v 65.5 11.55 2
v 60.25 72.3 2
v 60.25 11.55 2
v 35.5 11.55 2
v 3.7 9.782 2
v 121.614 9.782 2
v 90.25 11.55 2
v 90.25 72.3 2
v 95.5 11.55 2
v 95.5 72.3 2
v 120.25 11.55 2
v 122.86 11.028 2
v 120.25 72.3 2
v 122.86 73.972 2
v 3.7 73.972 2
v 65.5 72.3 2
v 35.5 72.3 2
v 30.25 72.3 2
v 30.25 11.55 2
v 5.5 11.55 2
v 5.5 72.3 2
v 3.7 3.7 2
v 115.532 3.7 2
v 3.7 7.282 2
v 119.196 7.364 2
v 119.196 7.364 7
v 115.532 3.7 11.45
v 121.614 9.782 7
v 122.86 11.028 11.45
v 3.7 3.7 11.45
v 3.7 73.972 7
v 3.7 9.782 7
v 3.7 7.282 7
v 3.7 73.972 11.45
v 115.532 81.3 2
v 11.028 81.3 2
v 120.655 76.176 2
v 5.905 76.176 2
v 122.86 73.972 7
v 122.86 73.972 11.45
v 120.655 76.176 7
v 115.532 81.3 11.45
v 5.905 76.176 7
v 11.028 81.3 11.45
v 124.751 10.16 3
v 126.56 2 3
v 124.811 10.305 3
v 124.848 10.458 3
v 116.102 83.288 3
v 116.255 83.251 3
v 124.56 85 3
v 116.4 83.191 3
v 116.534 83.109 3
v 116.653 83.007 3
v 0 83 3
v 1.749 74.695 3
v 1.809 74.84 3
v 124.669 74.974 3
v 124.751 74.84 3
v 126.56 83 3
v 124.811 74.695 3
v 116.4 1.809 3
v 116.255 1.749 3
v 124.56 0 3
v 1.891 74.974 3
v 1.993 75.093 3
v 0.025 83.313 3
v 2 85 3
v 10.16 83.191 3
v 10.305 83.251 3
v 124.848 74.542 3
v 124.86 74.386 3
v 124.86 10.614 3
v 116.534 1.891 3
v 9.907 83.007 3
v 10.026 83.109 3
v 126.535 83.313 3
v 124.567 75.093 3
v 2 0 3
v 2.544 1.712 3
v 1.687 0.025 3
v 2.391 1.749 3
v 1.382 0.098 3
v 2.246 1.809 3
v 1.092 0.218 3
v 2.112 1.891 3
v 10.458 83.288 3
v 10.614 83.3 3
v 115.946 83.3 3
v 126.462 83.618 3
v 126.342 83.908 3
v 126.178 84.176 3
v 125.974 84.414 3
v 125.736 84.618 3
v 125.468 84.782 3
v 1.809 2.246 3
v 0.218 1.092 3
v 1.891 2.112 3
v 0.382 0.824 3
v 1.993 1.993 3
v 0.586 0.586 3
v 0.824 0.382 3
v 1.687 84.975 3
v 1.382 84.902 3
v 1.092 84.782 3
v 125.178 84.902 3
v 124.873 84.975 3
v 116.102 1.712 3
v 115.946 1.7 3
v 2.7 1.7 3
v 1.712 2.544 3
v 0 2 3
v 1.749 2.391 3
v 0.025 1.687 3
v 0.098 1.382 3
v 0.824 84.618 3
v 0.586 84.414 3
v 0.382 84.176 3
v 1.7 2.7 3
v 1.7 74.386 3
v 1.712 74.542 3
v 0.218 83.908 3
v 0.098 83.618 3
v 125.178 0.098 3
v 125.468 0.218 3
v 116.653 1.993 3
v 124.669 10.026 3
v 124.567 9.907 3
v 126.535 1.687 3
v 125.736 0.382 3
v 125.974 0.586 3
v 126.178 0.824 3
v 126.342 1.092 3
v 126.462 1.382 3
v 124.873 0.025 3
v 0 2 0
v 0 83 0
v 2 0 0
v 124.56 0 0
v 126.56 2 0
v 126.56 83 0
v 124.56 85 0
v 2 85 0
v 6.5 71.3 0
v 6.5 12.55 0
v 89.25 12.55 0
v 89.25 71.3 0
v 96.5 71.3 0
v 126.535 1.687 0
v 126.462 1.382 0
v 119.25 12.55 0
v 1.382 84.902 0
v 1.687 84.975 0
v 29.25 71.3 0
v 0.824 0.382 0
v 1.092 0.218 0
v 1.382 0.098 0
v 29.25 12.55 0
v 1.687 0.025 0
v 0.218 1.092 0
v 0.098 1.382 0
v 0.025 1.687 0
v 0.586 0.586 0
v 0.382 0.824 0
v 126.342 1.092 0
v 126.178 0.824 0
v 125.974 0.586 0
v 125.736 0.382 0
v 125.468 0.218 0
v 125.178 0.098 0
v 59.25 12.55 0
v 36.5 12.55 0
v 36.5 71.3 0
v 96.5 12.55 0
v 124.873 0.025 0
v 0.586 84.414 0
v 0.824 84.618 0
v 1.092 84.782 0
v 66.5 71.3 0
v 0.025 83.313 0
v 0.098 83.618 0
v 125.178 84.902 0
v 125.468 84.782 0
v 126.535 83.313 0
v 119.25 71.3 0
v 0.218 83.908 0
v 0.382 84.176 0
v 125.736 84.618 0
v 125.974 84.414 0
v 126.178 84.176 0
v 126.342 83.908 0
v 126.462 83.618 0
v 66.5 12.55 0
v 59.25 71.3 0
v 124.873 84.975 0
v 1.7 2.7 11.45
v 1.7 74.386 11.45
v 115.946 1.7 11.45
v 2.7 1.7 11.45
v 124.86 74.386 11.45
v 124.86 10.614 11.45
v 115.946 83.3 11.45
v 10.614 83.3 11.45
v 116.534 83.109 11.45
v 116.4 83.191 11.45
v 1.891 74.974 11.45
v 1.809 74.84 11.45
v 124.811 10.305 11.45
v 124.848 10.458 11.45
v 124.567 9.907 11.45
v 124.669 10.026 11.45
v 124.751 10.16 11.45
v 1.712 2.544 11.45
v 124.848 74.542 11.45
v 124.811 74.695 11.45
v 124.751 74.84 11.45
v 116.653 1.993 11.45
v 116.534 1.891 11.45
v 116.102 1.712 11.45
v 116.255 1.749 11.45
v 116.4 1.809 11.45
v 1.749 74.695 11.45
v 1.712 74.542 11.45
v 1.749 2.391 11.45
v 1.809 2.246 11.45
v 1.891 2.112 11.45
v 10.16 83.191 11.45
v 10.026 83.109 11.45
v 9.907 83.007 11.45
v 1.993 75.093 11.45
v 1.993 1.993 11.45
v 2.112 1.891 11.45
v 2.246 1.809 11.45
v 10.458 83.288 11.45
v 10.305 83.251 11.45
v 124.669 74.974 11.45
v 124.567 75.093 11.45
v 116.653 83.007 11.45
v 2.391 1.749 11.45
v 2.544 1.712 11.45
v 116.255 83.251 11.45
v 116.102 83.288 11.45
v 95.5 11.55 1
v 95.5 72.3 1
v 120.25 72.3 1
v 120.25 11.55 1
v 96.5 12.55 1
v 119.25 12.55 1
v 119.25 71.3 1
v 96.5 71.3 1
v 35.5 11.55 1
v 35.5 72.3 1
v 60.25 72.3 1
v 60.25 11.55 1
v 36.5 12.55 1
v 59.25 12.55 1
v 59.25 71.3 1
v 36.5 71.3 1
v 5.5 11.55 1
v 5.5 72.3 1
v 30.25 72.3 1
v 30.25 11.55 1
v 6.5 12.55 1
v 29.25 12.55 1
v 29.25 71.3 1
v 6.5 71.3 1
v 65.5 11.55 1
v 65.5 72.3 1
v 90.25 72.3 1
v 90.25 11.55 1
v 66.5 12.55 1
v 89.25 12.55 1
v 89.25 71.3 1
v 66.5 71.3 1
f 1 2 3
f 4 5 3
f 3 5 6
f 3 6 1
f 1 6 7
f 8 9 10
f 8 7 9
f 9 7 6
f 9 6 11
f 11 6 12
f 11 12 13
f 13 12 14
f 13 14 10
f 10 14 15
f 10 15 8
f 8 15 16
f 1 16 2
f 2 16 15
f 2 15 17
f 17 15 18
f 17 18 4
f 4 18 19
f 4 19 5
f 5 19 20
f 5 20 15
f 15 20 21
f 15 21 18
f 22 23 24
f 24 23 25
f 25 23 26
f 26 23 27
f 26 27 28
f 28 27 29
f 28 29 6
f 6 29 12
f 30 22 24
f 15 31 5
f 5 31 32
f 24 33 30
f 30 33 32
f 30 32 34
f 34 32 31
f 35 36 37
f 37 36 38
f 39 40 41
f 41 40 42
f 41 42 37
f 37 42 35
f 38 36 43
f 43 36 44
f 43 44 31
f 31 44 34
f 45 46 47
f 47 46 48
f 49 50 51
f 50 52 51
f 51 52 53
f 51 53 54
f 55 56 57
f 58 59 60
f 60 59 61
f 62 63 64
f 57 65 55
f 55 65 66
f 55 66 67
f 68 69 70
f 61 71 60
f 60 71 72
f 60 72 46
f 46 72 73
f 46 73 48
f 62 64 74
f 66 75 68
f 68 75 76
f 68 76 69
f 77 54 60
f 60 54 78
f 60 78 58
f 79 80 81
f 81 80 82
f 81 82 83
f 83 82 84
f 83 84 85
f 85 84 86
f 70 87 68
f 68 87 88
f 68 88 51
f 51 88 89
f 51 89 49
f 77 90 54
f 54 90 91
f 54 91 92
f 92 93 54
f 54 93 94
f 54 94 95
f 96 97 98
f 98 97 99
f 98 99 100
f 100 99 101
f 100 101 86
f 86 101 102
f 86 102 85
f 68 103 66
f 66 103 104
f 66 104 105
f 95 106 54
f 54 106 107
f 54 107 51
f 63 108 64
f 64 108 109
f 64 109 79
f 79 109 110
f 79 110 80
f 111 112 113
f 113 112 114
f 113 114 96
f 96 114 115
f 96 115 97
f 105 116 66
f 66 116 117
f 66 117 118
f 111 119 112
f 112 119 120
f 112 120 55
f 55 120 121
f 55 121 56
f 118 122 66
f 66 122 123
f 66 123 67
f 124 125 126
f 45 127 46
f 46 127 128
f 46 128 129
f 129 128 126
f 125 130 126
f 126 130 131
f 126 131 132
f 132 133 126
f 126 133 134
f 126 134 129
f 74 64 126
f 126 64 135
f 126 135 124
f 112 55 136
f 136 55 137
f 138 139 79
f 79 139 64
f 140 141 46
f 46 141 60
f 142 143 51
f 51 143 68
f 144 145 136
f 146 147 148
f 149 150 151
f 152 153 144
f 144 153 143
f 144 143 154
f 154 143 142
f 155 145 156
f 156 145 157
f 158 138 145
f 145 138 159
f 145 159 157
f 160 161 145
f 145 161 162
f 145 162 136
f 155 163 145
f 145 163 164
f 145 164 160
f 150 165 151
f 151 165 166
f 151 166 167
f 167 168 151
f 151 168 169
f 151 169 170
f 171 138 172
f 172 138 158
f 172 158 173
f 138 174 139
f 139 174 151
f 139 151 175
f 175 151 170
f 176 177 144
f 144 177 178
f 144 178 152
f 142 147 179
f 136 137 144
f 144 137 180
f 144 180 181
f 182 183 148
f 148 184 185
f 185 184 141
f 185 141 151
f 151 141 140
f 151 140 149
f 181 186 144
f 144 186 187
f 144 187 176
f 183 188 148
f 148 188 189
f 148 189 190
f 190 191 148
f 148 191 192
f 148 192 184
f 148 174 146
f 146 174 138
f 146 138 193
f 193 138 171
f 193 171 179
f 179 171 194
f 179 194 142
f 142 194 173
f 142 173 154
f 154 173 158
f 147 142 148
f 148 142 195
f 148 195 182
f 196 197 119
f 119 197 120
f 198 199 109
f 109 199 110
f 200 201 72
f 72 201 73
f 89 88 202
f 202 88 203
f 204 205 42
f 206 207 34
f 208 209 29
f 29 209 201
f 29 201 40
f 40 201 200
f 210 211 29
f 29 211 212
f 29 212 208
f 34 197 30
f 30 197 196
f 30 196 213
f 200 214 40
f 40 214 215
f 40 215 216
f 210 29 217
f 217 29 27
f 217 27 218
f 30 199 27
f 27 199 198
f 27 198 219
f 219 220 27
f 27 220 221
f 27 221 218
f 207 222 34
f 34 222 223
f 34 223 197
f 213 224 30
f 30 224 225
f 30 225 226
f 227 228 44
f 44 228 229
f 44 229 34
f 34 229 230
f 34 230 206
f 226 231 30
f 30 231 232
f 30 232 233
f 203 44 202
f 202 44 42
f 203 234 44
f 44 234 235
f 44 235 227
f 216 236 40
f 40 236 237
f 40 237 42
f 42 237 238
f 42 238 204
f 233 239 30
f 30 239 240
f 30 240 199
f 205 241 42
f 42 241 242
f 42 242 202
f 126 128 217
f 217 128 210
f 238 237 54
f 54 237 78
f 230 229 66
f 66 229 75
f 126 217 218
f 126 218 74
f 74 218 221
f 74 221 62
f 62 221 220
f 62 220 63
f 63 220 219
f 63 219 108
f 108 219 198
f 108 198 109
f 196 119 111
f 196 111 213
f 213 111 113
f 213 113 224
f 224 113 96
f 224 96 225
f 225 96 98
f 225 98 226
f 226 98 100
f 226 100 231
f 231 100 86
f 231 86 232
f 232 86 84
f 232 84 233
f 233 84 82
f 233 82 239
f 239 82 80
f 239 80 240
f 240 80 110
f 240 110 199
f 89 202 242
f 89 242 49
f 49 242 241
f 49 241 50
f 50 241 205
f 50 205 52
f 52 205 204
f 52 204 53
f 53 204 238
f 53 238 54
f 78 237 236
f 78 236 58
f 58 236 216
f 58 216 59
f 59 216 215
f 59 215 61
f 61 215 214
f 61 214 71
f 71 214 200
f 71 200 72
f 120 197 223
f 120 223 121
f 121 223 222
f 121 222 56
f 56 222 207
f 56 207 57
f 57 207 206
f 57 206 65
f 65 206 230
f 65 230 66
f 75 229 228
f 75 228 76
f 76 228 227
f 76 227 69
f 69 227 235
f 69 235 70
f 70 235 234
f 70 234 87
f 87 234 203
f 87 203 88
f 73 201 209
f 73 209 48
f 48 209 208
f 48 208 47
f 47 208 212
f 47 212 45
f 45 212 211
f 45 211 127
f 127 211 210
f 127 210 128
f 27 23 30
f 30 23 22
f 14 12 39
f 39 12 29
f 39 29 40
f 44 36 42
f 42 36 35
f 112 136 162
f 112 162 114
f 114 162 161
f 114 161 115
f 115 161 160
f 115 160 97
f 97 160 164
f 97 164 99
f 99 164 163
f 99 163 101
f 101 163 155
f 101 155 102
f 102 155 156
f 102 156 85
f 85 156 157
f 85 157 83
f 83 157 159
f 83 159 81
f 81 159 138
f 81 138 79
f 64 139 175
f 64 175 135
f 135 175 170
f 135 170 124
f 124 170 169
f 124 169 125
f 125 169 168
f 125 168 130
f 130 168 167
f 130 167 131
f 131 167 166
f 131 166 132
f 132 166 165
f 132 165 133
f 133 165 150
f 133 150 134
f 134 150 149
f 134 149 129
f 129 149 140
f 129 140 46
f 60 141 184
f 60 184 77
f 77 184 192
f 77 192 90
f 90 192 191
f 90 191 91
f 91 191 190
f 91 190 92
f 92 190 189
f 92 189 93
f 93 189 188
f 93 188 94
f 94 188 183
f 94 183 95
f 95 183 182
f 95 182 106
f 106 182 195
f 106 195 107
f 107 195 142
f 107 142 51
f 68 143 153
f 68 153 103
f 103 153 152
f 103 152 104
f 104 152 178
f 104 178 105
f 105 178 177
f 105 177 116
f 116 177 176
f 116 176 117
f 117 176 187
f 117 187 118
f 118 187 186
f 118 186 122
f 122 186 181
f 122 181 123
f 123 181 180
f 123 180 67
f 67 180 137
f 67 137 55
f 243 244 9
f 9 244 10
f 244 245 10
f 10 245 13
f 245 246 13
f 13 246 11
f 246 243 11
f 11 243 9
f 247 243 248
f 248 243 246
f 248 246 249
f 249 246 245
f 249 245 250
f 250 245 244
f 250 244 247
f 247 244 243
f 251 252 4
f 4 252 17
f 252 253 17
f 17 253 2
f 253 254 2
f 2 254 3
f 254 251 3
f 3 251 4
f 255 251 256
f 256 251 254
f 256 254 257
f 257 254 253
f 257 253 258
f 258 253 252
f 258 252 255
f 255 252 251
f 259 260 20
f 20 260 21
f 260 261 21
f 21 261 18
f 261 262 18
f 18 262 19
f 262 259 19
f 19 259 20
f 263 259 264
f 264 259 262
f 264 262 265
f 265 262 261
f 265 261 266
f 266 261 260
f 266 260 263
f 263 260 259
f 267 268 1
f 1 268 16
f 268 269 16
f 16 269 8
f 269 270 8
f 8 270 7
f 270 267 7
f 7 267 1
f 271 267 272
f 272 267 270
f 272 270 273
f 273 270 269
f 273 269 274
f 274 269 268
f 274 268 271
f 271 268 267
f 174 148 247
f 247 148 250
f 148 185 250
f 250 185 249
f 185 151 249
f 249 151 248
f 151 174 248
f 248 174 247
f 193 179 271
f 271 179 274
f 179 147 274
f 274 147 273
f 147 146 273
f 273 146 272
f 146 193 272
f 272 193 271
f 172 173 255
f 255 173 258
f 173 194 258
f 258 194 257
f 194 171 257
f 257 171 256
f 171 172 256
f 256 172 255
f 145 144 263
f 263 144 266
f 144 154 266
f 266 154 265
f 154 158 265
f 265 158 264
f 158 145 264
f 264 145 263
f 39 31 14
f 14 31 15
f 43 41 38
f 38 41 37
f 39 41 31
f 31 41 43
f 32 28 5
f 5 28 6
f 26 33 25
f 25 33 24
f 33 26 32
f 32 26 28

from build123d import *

# Parameters (mm, degrees)
SKETCH1_W           = 126.56
SKETCH1_H           = 85
BOSS_EXTRUDE1_DEPTH = 3
SKETCH2_W           = 123.16
SKETCH2_H           = 81.6
BOSS_EXTRUDE2_DEPTH = 8.45
CUT_EXTRUDE1_DEPTH  = 8.45
FILLET1_R           = 1
SHELL1_T            = -2
FILLET2_R           = 2
SKETCH4_W           = 24.75
SKETCH4_H           = 60.75
CUT_EXTRUDE2_DEPTH  = 1
SKETCH5_W           = 22.75
SKETCH5_H           = 58.75
CUT_EXTRUDE3_DEPTH  = 1
BOSS_EXTRUDE4_DEPTH = 5


with BuildPart() as part:
    # Sketch1 → Boss-Extrude1 (new body)
    with BuildSketch(Plane.XY):
        with Locations((63.28, 42.5)):
            Rectangle(SKETCH1_W, SKETCH1_H)
    extrude(amount=BOSS_EXTRUDE1_DEPTH)

    # Sketch2 → Boss-Extrude2 (add)
    with BuildSketch(Plane.XY.offset(3)):
        with Locations((63.28, 42.5)):
            Rectangle(SKETCH2_W, SKETCH2_H)
    extrude(amount=BOSS_EXTRUDE2_DEPTH)

    # Sketch3 → Cut-Extrude1 (cut)
    with BuildSketch(Plane.XY.offset(11.45)):
        Polygon((1.7, 83.3), (1.7, 74.8), (10.2, 83.3), align=None)
        Polygon((124.86, 83.3), (116.36, 83.3), (124.86, 74.8), align=None)
        Polygon((124.86, 1.7), (124.86, 10.2), (116.36, 1.7), align=None)
    extrude(amount=-CUT_EXTRUDE1_DEPTH, mode=Mode.SUBTRACT)

    # Fillet1
    fillet1_edges = [part.edges().sort_by_distance(p)[0] for p in [
        (1.7, 1.7, 7.225),
        (10.2, 83.3, 7.225),
        (1.7, 74.8, 7.225),
        (124.86, 74.8, 7.225),
        (116.36, 83.3, 7.225),
        (116.36, 1.7, 7.225),
        (124.86, 10.2, 7.225),
    ]]
    fillet(fillet1_edges, radius=FILLET1_R)

    # Shell1
    shell1_openings = [part.faces().sort_by_distance(p)[0] for p in [
        (63.067597632, 42.362751228, 11.45),
    ]]
    offset(amount=SHELL1_T, openings=shell1_openings, kind=Kind.INTERSECTION)

    # Fillet2
    fillet2_edges = [part.edges().sort_by_distance(p)[0] for p in [
        (0, 85, 1.5),
        (126.56, 85, 1.5),
        (126.56, 0, 1.5),
        (0, 0, 1.5),
    ]]
    fillet(fillet2_edges, radius=FILLET2_R)

    # Sketch4 → Cut-Extrude2 (cut)
    with BuildSketch(Plane.XY.offset(2)):
        with Locations((17.875, 41.925)):
            Rectangle(SKETCH4_W, SKETCH4_H)
        with Locations((47.875, 41.925)):
            Rectangle(SKETCH4_W, SKETCH4_H)
        with Locations((77.875, 41.925)):
            Rectangle(SKETCH4_W, SKETCH4_H)
        with Locations((107.875, 41.925)):
            Rectangle(SKETCH4_W, SKETCH4_H)
    extrude(amount=-CUT_EXTRUDE2_DEPTH, mode=Mode.SUBTRACT)

    # Sketch5 → Cut-Extrude3 (cut)
    with BuildSketch(Plane.XY.offset(1)):
        with Locations((17.875, 41.925)):
            Rectangle(SKETCH5_W, SKETCH5_H)
        with Locations((47.875, 41.925)):
            Rectangle(SKETCH5_W, SKETCH5_H)
        with Locations((77.875, 41.925)):
            Rectangle(SKETCH5_W, SKETCH5_H)
        with Locations((107.875, 41.925)):
            Rectangle(SKETCH5_W, SKETCH5_H)
    extrude(amount=-CUT_EXTRUDE3_DEPTH, mode=Mode.SUBTRACT)

    # Sketch7 → Boss-Extrude4 (add)
    with BuildSketch(Plane.XY.offset(2)):
        Polygon((3.7, 73.971572875), (122.86, 73.971572875), (120.655411021, 76.176161854), (5.904588979, 76.176161854), align=None)
        Polygon((3.7, 9.782267604), (3.7, 7.282267604), (119.195786438, 7.364213562), (121.613840479, 9.782267604), align=None)
    extrude(amount=BOSS_EXTRUDE4_DEPTH)


solid = part.part
